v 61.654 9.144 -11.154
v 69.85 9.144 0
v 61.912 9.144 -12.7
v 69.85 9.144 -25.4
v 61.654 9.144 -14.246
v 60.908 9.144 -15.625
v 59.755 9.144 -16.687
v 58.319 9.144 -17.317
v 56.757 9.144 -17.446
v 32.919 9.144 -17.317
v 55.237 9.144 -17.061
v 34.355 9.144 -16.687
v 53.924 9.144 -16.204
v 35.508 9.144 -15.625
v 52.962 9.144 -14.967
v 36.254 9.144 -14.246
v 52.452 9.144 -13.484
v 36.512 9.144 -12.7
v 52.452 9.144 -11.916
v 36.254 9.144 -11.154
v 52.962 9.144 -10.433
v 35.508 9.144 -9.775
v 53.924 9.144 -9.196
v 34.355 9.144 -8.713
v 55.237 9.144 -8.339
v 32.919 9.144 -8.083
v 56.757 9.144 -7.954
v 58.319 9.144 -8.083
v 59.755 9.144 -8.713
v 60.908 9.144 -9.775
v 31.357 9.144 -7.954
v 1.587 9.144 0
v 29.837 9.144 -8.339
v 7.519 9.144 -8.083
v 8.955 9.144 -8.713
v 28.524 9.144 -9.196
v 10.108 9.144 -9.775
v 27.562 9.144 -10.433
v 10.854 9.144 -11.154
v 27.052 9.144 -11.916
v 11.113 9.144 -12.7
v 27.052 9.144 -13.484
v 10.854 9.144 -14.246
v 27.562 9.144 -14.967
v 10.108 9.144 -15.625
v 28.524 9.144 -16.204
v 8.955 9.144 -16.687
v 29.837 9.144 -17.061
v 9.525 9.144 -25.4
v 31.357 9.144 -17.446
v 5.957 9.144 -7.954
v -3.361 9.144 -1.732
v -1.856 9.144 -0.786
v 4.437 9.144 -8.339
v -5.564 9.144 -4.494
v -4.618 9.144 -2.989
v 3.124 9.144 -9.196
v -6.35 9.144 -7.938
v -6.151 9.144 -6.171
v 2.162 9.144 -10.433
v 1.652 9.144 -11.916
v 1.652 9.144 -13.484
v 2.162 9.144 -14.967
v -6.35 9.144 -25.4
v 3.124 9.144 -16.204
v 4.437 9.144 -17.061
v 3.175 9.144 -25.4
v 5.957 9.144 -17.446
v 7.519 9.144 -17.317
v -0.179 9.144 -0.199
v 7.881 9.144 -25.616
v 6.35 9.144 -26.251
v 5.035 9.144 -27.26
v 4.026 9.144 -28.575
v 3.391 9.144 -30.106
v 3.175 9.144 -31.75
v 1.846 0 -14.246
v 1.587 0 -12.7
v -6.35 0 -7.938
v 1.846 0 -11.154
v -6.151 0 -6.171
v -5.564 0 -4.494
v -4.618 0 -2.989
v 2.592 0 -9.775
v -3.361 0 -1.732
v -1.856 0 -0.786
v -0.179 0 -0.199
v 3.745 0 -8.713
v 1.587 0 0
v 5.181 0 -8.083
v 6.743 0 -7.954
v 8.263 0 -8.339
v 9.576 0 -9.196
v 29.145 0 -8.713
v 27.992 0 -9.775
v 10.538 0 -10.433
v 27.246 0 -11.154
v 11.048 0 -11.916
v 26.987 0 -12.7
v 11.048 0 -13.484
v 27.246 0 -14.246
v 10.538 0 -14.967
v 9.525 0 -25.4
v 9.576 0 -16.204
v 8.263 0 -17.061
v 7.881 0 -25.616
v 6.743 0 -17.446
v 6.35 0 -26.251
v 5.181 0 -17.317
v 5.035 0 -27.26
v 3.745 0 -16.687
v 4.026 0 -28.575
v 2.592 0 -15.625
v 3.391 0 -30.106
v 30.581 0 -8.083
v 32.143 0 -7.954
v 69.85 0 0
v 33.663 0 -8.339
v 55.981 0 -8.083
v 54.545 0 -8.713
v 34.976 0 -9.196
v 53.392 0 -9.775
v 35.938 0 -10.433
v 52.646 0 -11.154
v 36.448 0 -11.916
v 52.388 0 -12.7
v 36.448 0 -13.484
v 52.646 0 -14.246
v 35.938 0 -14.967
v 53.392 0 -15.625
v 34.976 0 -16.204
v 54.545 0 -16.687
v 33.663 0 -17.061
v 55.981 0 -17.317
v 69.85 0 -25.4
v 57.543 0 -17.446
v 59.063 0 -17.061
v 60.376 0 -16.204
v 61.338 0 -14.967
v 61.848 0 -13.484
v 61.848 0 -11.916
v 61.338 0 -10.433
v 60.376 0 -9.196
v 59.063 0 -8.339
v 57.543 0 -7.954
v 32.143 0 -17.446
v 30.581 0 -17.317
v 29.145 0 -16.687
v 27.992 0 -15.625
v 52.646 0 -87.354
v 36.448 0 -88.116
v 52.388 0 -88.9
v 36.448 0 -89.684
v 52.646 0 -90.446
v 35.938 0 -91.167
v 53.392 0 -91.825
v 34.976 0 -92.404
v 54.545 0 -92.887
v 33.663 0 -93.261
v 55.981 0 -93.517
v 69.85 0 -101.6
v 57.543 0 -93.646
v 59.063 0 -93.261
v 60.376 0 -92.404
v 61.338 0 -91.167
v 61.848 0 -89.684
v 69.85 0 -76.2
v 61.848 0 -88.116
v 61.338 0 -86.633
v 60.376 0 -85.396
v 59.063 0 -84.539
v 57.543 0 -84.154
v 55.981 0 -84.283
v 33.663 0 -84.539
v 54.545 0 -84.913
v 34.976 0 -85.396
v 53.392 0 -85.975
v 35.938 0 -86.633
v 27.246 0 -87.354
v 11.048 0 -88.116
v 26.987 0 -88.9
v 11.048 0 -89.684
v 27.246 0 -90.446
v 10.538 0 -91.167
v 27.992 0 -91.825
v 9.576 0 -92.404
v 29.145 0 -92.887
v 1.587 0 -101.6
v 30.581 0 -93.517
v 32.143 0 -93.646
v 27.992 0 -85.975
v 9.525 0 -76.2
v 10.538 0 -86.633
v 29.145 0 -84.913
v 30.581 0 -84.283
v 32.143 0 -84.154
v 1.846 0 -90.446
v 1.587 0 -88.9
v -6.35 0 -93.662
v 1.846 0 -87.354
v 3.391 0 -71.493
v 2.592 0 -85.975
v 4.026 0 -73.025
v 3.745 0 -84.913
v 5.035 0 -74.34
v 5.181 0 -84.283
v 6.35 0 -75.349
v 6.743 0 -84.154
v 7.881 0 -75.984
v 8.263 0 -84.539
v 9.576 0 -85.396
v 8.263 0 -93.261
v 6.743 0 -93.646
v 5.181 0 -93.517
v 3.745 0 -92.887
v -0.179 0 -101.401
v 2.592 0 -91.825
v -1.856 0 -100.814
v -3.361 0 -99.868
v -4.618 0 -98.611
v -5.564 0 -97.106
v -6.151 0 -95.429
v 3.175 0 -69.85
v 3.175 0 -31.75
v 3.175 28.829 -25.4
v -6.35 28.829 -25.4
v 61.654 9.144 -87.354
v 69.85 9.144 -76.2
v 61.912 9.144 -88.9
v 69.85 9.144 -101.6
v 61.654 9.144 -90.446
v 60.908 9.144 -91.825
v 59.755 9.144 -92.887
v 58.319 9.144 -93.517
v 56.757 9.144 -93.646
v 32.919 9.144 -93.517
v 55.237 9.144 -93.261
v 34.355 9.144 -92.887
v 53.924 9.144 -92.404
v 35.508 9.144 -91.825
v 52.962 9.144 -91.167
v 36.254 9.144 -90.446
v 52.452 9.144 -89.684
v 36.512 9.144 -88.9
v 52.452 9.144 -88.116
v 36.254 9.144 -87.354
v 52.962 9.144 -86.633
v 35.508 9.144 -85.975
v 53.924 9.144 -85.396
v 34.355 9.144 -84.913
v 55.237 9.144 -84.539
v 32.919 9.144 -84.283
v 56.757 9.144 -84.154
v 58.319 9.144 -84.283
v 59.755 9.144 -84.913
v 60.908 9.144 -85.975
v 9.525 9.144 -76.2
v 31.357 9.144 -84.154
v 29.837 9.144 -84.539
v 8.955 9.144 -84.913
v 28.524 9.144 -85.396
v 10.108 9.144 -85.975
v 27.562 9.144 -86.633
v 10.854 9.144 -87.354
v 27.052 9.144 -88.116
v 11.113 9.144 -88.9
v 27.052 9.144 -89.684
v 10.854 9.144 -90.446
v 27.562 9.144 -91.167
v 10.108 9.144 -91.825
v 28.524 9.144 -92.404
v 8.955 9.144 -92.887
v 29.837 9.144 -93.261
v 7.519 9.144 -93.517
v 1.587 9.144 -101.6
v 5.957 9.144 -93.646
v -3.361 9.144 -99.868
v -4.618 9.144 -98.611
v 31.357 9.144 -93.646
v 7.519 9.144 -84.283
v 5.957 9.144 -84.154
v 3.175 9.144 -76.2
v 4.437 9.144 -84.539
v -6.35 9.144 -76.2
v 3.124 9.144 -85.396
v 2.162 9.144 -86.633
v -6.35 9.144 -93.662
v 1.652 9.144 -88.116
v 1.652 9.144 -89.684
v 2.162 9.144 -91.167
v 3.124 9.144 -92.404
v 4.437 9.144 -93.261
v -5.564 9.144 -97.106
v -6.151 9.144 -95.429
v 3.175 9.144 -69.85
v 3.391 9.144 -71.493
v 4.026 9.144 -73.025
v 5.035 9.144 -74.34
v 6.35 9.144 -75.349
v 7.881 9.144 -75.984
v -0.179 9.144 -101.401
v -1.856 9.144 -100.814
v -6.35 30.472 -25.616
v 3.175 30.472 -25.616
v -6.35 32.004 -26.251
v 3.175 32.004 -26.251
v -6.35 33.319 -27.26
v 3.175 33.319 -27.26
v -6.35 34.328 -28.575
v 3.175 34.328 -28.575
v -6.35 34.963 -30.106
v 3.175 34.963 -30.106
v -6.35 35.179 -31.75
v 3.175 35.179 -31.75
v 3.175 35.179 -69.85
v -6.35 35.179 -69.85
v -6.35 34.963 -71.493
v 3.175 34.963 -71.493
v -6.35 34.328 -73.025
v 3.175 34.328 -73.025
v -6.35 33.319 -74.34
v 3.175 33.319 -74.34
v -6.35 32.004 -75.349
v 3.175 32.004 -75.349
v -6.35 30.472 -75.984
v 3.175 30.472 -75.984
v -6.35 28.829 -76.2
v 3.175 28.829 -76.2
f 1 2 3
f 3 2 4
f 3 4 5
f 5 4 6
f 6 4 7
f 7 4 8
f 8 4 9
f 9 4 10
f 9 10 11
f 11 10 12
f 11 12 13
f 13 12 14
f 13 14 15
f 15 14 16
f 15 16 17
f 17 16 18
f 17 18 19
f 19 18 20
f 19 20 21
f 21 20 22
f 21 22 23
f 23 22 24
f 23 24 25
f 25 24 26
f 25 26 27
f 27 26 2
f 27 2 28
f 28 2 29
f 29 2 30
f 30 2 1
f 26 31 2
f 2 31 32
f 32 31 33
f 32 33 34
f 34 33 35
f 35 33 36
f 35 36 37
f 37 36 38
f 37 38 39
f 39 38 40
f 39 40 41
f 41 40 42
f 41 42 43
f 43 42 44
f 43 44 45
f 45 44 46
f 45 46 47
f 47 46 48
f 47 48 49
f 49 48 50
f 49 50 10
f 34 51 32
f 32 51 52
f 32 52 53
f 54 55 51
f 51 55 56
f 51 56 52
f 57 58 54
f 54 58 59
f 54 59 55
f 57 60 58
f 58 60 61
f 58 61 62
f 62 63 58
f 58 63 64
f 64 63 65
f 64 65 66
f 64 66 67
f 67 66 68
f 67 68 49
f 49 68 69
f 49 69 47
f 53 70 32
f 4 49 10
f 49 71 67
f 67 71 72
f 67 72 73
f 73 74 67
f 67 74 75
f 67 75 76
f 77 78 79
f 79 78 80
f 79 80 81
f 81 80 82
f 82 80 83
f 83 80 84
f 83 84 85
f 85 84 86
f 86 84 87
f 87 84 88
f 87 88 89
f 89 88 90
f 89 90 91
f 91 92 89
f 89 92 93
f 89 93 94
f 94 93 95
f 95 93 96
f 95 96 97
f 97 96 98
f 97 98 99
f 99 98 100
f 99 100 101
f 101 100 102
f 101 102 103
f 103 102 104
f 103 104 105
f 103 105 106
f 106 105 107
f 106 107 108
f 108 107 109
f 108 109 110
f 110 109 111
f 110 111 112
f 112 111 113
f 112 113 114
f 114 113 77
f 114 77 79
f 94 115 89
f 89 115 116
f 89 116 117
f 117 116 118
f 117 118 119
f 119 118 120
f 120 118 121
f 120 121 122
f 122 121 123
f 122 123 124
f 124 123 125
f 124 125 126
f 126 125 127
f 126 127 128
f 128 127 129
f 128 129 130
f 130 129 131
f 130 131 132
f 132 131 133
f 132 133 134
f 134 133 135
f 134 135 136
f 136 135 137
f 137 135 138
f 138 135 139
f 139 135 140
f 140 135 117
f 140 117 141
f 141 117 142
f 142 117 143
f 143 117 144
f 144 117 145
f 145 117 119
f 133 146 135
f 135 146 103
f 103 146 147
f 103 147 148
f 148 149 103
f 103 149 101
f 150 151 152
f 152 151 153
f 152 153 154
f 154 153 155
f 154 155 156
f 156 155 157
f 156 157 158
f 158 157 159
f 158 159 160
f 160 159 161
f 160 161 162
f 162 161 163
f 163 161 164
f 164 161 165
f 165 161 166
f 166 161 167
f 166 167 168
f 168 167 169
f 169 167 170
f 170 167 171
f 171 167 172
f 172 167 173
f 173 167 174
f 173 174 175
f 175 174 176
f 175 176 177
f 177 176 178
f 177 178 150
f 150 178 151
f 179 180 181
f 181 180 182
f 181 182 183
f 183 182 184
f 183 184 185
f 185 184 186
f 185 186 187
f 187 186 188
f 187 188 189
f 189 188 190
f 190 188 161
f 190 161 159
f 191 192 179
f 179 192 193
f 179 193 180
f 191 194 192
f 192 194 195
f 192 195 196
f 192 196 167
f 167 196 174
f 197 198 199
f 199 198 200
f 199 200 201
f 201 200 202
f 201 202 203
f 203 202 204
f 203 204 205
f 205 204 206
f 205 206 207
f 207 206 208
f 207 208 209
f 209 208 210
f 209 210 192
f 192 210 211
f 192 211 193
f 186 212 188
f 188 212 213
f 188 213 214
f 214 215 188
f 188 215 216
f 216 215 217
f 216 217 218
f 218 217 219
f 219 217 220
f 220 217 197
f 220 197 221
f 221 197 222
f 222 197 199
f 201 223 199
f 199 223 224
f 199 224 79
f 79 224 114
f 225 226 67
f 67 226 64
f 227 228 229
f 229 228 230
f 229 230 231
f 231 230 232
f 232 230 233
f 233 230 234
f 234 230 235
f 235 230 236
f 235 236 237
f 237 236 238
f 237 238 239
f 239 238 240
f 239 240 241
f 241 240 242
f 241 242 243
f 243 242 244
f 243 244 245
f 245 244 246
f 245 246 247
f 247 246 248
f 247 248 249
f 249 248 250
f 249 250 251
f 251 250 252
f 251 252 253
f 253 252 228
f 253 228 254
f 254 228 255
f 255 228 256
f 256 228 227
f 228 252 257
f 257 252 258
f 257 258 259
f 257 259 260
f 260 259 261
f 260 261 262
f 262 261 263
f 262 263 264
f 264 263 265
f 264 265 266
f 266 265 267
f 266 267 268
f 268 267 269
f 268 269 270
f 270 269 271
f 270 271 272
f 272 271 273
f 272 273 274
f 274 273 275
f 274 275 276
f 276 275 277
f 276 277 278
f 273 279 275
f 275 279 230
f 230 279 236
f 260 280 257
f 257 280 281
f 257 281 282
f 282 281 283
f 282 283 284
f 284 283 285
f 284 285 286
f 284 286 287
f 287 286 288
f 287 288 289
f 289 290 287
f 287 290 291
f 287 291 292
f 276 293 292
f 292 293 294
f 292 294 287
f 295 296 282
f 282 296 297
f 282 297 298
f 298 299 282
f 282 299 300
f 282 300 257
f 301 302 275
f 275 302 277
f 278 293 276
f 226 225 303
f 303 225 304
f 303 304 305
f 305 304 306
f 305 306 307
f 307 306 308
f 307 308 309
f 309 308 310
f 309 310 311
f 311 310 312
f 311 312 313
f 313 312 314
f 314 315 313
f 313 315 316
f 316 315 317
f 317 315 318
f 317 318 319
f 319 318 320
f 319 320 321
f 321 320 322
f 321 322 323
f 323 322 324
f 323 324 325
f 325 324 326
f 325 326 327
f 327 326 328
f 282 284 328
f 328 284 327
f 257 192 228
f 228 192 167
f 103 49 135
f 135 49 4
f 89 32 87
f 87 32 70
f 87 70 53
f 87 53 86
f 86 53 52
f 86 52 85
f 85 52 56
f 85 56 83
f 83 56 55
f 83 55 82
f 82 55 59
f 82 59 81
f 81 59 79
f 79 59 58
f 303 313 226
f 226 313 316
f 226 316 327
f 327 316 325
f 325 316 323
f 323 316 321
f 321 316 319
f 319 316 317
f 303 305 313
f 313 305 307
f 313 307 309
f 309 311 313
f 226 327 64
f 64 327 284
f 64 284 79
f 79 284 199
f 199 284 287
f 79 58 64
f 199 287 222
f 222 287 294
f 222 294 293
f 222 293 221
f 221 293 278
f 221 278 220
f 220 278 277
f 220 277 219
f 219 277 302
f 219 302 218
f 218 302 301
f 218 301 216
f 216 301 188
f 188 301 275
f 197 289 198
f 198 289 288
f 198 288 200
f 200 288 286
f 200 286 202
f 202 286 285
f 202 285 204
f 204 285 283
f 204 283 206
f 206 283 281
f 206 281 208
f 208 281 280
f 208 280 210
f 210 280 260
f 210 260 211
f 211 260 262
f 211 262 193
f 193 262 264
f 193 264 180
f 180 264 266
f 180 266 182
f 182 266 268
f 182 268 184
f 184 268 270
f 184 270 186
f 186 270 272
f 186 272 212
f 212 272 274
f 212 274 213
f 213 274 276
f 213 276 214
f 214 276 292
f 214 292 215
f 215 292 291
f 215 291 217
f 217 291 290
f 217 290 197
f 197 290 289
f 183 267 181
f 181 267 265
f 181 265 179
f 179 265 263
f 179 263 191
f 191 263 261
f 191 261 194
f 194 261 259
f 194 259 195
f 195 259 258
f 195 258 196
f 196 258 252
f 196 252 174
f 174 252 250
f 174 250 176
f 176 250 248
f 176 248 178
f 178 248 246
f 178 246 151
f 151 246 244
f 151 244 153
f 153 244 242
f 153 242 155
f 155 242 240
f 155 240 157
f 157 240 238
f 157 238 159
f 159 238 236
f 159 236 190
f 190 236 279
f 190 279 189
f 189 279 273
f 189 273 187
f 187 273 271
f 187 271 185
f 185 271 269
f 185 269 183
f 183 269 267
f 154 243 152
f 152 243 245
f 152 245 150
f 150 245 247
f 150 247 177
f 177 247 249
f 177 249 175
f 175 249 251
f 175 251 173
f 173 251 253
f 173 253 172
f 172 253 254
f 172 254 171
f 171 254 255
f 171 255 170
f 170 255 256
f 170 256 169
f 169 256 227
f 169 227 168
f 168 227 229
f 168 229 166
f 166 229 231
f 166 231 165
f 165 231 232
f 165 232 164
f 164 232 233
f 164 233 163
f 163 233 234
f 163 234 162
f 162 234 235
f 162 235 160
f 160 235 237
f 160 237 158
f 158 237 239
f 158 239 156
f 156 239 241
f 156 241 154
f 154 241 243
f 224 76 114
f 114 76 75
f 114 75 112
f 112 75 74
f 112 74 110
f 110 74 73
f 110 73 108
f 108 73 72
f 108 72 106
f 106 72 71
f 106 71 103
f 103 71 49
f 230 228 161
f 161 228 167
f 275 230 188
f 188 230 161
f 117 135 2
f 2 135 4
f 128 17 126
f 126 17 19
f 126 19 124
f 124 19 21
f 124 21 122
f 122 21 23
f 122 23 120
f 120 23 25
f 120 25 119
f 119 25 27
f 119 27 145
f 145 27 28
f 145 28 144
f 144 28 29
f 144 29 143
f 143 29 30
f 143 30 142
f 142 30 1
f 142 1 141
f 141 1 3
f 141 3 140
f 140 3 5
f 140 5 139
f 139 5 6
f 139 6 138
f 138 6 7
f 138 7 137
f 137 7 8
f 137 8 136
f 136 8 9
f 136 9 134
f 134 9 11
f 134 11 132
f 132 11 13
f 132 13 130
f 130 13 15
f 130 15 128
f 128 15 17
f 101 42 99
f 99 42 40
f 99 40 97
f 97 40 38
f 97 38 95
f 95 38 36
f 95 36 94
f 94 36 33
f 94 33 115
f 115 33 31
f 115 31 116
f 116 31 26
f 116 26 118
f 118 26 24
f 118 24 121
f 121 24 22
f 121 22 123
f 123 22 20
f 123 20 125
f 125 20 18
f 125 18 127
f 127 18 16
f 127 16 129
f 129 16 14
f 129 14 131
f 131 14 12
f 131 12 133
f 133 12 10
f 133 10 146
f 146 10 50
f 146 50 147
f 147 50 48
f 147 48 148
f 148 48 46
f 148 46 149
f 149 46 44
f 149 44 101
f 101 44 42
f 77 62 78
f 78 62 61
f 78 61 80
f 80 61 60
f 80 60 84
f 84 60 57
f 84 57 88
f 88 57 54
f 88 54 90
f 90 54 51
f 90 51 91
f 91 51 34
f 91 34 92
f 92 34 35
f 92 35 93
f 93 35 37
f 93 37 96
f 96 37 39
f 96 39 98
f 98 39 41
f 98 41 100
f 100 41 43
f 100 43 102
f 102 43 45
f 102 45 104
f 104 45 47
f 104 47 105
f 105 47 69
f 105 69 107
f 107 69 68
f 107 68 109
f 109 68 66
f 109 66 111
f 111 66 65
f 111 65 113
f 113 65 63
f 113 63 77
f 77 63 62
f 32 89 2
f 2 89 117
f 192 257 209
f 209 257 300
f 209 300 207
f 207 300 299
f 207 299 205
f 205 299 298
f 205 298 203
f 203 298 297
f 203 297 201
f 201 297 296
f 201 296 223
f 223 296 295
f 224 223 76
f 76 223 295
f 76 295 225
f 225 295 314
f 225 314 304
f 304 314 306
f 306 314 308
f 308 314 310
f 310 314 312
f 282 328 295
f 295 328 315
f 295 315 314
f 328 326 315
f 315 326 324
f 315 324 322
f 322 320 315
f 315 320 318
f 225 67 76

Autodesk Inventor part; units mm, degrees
ref_plane "YZ Plane" through (0, 0, 0) normal (1, 0, 0) x (0, 1, 0)
ref_plane "XZ Plane" through (0, 0, 0) normal (0, 1, 0) x (-1, 0, 0)
ref_plane "XY Plane" through (0, 0, 0) normal (0, 0, 1) x (1, 0, 0)
sketch "Sketch1" plane through (0, 0, 0) normal (1, 0, 0) x (0, 1, 0)
  line L0 (0, 0) -> (9.144, 0)
  line L1 (9.144, 0) -> (9.144, -25.4)
  line L2 (9.144, -25.4) -> (0, -25.4)
  line L3 (0, -25.4) -> (0, 0)
  dimension "d0" = 25.4
  dimension "d1" = 9.144
extrude "Extrusion1" add sketch "Sketch1" along normal blind 63.5
sketch "Sketch2" plane through (0, 9.144, 0) normal (0, 1, 0) x (1, 0, 0)
  line L0 (0, 25.4) -> (0, 0) projected
  line L1 (0, 12.7) -> (6.35, 12.7)
  line L2 (6.35, 12.7) -> (31.75, 12.7)
  line L3 (31.75, 12.7) -> (57.15, 12.7)
  circle A0 centre (6.35, 12.7) radius 4.7625
  circle A1 centre (31.75, 12.7) radius 4.7625
  circle A2 centre (57.15, 12.7) radius 4.7625
  dimension "d4" = 6.35
  dimension "d5" = 25.4
  dimension "d6" = 25.4
  dimension "d7" = 9.525
  dimension "d8" = 9.525
  dimension "d9" = 9.525
sketch "Sketch3" plane through (0, 0, 0) normal (-1, 0, 0) x (0, 0, 1)
  line L0 (-25.4, 0) -> (-25.4, 9.144) projected
  line L1 (0, 0) -> (-25.4, 0)
  line L2 (-25.4, 0) -> (-25.4, 9.144)
  line L3 (-25.4, 9.144) -> (0, 9.144)
  line L4 (0, 9.144) -> (0, 0)
extrude "Extrusion2" add sketch "Sketch3" along normal blind 3.175
extrude "Extrusion3" cut sketch "Sketch2" against normal blind 25.4
sketch "Sketch4" plane through (63.5, 0, 0) normal (1, 0, 0) x (0, 0, -1)
  line L0 (25.4, 0) -> (25.4, 9.144) projected
  line L1 (25.4, 9.144) -> (0, 9.144) projected
  line L2 (0, 9.144) -> (0, 0) projected
  line L3 (0, 0) -> (25.4, 0) projected
extrude "Extrusion4" add sketch "Sketch4" along normal blind 5.08
sketch "Sketch5" plane through (68.58, 0, 0) normal (1, 0, 0) x (0, 0, -1)
  line L0 (25.4, 9.144) -> (0, 9.144) projected
  line L1 (0, 9.144) -> (0, 0) projected
  line L2 (0, 0) -> (25.4, 0) projected
  line L3 (25.4, 0) -> (25.4, 9.144) projected
extrude "Extrusion5" add sketch "Sketch5" along normal blind 1.27
sketch "Sketch8" plane through (-3.175, 0, -25.4) normal (0, 0, -1) x (-1, 0, 0)
  line L0 (-73.025, 0) -> (0, 0) projected
  line L1 (0, 9.144) -> (-73.025, 9.144) projected
  line L2 (0, 0) -> (-15.875, 0)
  line L3 (-15.875, 0) -> (-15.875, 9.144)
  line L4 (-15.875, 9.144) -> (0, 9.144)
  line L5 (0, 9.144) -> (0, 0)
  line L6 (0, 9.144) -> (0, 0) projected
  point P0 (-3.175, 0)
  point P1 (0, 4.572)
  dimension "d24" = 15.875
extrude "Extrusion8" add sketch "Sketch8" along normal blind 50.8
sketch "Sketch9" plane through (-3.175, 0, 0) normal (-1, 0, 0) x (0, 0, 1)
  line L0 (0, 0) -> (0, 9.144) projected
  line L1 (0, 9.144) -> (-76.2, 9.144) projected
  line L2 (-76.2, 0) -> (-76.2, 9.144) projected
  line L3 (0, 0) -> (-76.2, 0) projected
extrude "Extrusion9" add sketch "Sketch9" along normal blind 3.175
sketch "Sketch10" plane through (69.85, 9.144, 0) normal (0, 1, 0) x (1, 0, 0)
  line L0 (-57.15, 25.4) -> (-57.15, 76.2) projected
  line L1 (-57.15, 76.2) -> (-66.675, 76.2)
  line L2 (-57.15, 76.2) -> (-76.2, 76.2) projected
  line L3 (-71.4375, 41.2761) -> (-61.9125, 41.2761)
  line L4 (-71.4375, 60.3261) -> (-61.9125, 60.3261)
  circle A0 centre (-66.675, 41.2761) radius 4.7625
  circle A1 centre (-66.675, 60.3261) radius 4.7625
  line L5 (-71.4375, 41.2761) -> (-71.4375, 60.3261)
  line L6 (-61.9125, 60.3261) -> (-61.9125, 41.2761)
  point P0 (-69.85, 0)
  dimension "d55" = 9.525
  dimension "d29" = 9.525
  dimension "d56" = 9.525
extrude "Extrusion10" add sketch "Sketch10" along normal blind 35.179
sketch "Sketch11" plane through (-3.175, 0, -76.2) normal (0, 0, -1) x (-1, 0, 0)
  line L0 (-15.875, 9.144) -> (3.175, 9.144) projected
  line L1 (-15.875, 9.144) -> (-15.875, 0) projected
  line L2 (-15.875, 0) -> (3.175, 0) projected
  line L3 (3.175, 9.144) -> (3.175, 0) projected
  point P0 (-3.175, 0)
extrude "Extrusion11" add sketch "Sketch11" along normal blind 25.4
sketch "Sketch13" plane through (12.7, 0, -25.4) normal (1, 0, 0) x (0, 0, -1)
  line L0 (0, 9.144) -> (76.2, 9.144) projected
  line L1 (-25.4, 0) -> (76.2, 0) projected
  line L2 (76.2, 9.144) -> (50.8, 9.144)
  line L3 (50.8, 9.144) -> (50.8, 0)
  line L4 (50.8, 0) -> (76.2, 0)
  line L5 (76.2, 0) -> (76.2, 9.144)
  dimension "d38" = 25.4
extrude "Extrusion12" add sketch "Sketch13" along normal blind 57.15
sketch "Sketch14" plane through (69.85, 9.144, 0) normal (0, 1, 0) x (1, 0, 0)
  circle A0 centre (-12.7, 12.7) radius 4.7625 projected
  line L0 (-12.7, 12.7) -> (-12.7, 88.9)
  circle A1 centre (-38.1, 12.7) radius 4.7625 projected
  line L1 (-38.1, 12.7) -> (-38.1, 88.9)
  circle A2 centre (-12.7, 88.9) radius 4.7625
  circle A3 centre (-38.1, 88.9) radius 4.7625
  circle A4 centre (-63.5, 12.7) radius 4.7625 projected
  line L2 (-63.5, 12.7) -> (-63.5, 88.9)
  circle A5 centre (-63.5, 88.9) radius 4.7625
  point P0 (-69.85, 0)
  dimension "d42" = 76.2
  dimension "d43" = 76.2
  dimension "d44" = 9.525
  dimension "d45" = 9.525
  dimension "d46" = 9.525
extrude "Extrusion13" cut sketch "Sketch14" against normal blind 20.6375 contours A2 | A3 | A5
fillet "Fillet2" radius 7.9375 2 edges at (-6.35, 4.572, -101.6) (-6.35, 4.572, 0)
sketch "Sketch15" plane through (69.85, 9.144, 0) normal (0, 1, 0) x (1, 0, 0)
  line L0 (0, 25.4) -> (-57.15, 25.4) projected
  line L1 (-57.15, 25.4) -> (-76.2, 25.4)
  line L2 (-76.2, 7.9375) -> (-76.2, 93.6625) projected
  line L3 (-57.15, 25.4) -> (-57.15, 76.2) projected
  line L4 (-57.15, 76.2) -> (-76.2, 76.2)
  line L5 (-71.4375, 31.7511) -> (-71.4375, 69.8511) projected
  line L6 (-61.9125, 69.8511) -> (-61.9125, 31.7511) projected
  arc A0 (-71.4375, 31.7511) -> (-61.9125, 31.7511) centre (-66.675, 31.7511) ccw projected
  arc A1 (-61.9125, 69.8511) -> (-71.4375, 69.8511) centre (-66.675, 69.8511) ccw projected
  arc A2 (-71.4375, 41.2761) -> (-61.9125, 41.2761) centre (-66.675, 41.2761) ccw projected
  arc A3 (-61.9125, 60.3261) -> (-71.4375, 60.3261) centre (-66.675, 60.3261) ccw projected
  point P0 (-69.85, 0)
extrude "Extrusion14" add sketch "Sketch15" along normal blind 26.035 contours L1 L2 L4 L3 | L5 A2 L6 A0 | L5 A1 L6 A3
fillet "Fillet3" radius 6.35 2 edges at (3.175, 35.179, -76.2) (3.175, 35.179, -25.4)
sketch "Sketch16" plane through (-1.5875, 44.323, -60.3261) normal (-1, 0, 0) x (0, 0, 1)
  arc A0 (-9.5239, -9.144) -> (-15.8739, -15.494) centre (-9.5239, -15.494) ccw projected
  line L0 (-9.5239, -9.144) -> (49.3517, -9.144)
  line L1 (49.3517, -9.144) -> (49.3517, 6.1013)
  line L2 (49.3517, 6.1013) -> (-9.5239, 6.1013)
  line L3 (-9.5239, 6.1013) -> (-9.5239, -9.144)
  point P0 (60.3261, -44.323)
extrude "Extrusion15" cut sketch "Sketch16" against normal blind 21.971
sketch "Sketch19" plane through (69.85, 35.179, 0) normal (0, 1, 0) x (1, 0, 0)
  line L0 (-57.15, 76.2) -> (-76.2, 76.2) projected
  line L1 (-57.15, 25.4) -> (-76.2, 25.4) projected
  line L2 (-57.15, 76.2) -> (-66.675, 76.2)
  line L3 (-66.675, 76.2) -> (-66.675, 25.4)
  line L4 (-66.675, 25.4) -> (-57.15, 25.4)
  line L5 (-57.15, 25.4) -> (-57.15, 76.2)
  line L6 (-57.15, 76.2) -> (-49.094, 76.2)
  line L7 (-49.094, 76.2) -> (-49.094, 25.4)
  line L8 (-49.094, 25.4) -> (-57.15, 25.4)
  line L9 (-57.15, 25.4) -> (-57.15, 76.2)
  point P0 (-69.85, 0)
extrude "Extrusion18" cut sketch "Sketch19" against normal blind 42.8625
fillet "Fillet8" radius 6.35 2 edges at (3.175, 4.572, -76.2) (3.175, 4.572, -25.4)
properties part number "CH-1-03-RearGearboxSpacer_01"
